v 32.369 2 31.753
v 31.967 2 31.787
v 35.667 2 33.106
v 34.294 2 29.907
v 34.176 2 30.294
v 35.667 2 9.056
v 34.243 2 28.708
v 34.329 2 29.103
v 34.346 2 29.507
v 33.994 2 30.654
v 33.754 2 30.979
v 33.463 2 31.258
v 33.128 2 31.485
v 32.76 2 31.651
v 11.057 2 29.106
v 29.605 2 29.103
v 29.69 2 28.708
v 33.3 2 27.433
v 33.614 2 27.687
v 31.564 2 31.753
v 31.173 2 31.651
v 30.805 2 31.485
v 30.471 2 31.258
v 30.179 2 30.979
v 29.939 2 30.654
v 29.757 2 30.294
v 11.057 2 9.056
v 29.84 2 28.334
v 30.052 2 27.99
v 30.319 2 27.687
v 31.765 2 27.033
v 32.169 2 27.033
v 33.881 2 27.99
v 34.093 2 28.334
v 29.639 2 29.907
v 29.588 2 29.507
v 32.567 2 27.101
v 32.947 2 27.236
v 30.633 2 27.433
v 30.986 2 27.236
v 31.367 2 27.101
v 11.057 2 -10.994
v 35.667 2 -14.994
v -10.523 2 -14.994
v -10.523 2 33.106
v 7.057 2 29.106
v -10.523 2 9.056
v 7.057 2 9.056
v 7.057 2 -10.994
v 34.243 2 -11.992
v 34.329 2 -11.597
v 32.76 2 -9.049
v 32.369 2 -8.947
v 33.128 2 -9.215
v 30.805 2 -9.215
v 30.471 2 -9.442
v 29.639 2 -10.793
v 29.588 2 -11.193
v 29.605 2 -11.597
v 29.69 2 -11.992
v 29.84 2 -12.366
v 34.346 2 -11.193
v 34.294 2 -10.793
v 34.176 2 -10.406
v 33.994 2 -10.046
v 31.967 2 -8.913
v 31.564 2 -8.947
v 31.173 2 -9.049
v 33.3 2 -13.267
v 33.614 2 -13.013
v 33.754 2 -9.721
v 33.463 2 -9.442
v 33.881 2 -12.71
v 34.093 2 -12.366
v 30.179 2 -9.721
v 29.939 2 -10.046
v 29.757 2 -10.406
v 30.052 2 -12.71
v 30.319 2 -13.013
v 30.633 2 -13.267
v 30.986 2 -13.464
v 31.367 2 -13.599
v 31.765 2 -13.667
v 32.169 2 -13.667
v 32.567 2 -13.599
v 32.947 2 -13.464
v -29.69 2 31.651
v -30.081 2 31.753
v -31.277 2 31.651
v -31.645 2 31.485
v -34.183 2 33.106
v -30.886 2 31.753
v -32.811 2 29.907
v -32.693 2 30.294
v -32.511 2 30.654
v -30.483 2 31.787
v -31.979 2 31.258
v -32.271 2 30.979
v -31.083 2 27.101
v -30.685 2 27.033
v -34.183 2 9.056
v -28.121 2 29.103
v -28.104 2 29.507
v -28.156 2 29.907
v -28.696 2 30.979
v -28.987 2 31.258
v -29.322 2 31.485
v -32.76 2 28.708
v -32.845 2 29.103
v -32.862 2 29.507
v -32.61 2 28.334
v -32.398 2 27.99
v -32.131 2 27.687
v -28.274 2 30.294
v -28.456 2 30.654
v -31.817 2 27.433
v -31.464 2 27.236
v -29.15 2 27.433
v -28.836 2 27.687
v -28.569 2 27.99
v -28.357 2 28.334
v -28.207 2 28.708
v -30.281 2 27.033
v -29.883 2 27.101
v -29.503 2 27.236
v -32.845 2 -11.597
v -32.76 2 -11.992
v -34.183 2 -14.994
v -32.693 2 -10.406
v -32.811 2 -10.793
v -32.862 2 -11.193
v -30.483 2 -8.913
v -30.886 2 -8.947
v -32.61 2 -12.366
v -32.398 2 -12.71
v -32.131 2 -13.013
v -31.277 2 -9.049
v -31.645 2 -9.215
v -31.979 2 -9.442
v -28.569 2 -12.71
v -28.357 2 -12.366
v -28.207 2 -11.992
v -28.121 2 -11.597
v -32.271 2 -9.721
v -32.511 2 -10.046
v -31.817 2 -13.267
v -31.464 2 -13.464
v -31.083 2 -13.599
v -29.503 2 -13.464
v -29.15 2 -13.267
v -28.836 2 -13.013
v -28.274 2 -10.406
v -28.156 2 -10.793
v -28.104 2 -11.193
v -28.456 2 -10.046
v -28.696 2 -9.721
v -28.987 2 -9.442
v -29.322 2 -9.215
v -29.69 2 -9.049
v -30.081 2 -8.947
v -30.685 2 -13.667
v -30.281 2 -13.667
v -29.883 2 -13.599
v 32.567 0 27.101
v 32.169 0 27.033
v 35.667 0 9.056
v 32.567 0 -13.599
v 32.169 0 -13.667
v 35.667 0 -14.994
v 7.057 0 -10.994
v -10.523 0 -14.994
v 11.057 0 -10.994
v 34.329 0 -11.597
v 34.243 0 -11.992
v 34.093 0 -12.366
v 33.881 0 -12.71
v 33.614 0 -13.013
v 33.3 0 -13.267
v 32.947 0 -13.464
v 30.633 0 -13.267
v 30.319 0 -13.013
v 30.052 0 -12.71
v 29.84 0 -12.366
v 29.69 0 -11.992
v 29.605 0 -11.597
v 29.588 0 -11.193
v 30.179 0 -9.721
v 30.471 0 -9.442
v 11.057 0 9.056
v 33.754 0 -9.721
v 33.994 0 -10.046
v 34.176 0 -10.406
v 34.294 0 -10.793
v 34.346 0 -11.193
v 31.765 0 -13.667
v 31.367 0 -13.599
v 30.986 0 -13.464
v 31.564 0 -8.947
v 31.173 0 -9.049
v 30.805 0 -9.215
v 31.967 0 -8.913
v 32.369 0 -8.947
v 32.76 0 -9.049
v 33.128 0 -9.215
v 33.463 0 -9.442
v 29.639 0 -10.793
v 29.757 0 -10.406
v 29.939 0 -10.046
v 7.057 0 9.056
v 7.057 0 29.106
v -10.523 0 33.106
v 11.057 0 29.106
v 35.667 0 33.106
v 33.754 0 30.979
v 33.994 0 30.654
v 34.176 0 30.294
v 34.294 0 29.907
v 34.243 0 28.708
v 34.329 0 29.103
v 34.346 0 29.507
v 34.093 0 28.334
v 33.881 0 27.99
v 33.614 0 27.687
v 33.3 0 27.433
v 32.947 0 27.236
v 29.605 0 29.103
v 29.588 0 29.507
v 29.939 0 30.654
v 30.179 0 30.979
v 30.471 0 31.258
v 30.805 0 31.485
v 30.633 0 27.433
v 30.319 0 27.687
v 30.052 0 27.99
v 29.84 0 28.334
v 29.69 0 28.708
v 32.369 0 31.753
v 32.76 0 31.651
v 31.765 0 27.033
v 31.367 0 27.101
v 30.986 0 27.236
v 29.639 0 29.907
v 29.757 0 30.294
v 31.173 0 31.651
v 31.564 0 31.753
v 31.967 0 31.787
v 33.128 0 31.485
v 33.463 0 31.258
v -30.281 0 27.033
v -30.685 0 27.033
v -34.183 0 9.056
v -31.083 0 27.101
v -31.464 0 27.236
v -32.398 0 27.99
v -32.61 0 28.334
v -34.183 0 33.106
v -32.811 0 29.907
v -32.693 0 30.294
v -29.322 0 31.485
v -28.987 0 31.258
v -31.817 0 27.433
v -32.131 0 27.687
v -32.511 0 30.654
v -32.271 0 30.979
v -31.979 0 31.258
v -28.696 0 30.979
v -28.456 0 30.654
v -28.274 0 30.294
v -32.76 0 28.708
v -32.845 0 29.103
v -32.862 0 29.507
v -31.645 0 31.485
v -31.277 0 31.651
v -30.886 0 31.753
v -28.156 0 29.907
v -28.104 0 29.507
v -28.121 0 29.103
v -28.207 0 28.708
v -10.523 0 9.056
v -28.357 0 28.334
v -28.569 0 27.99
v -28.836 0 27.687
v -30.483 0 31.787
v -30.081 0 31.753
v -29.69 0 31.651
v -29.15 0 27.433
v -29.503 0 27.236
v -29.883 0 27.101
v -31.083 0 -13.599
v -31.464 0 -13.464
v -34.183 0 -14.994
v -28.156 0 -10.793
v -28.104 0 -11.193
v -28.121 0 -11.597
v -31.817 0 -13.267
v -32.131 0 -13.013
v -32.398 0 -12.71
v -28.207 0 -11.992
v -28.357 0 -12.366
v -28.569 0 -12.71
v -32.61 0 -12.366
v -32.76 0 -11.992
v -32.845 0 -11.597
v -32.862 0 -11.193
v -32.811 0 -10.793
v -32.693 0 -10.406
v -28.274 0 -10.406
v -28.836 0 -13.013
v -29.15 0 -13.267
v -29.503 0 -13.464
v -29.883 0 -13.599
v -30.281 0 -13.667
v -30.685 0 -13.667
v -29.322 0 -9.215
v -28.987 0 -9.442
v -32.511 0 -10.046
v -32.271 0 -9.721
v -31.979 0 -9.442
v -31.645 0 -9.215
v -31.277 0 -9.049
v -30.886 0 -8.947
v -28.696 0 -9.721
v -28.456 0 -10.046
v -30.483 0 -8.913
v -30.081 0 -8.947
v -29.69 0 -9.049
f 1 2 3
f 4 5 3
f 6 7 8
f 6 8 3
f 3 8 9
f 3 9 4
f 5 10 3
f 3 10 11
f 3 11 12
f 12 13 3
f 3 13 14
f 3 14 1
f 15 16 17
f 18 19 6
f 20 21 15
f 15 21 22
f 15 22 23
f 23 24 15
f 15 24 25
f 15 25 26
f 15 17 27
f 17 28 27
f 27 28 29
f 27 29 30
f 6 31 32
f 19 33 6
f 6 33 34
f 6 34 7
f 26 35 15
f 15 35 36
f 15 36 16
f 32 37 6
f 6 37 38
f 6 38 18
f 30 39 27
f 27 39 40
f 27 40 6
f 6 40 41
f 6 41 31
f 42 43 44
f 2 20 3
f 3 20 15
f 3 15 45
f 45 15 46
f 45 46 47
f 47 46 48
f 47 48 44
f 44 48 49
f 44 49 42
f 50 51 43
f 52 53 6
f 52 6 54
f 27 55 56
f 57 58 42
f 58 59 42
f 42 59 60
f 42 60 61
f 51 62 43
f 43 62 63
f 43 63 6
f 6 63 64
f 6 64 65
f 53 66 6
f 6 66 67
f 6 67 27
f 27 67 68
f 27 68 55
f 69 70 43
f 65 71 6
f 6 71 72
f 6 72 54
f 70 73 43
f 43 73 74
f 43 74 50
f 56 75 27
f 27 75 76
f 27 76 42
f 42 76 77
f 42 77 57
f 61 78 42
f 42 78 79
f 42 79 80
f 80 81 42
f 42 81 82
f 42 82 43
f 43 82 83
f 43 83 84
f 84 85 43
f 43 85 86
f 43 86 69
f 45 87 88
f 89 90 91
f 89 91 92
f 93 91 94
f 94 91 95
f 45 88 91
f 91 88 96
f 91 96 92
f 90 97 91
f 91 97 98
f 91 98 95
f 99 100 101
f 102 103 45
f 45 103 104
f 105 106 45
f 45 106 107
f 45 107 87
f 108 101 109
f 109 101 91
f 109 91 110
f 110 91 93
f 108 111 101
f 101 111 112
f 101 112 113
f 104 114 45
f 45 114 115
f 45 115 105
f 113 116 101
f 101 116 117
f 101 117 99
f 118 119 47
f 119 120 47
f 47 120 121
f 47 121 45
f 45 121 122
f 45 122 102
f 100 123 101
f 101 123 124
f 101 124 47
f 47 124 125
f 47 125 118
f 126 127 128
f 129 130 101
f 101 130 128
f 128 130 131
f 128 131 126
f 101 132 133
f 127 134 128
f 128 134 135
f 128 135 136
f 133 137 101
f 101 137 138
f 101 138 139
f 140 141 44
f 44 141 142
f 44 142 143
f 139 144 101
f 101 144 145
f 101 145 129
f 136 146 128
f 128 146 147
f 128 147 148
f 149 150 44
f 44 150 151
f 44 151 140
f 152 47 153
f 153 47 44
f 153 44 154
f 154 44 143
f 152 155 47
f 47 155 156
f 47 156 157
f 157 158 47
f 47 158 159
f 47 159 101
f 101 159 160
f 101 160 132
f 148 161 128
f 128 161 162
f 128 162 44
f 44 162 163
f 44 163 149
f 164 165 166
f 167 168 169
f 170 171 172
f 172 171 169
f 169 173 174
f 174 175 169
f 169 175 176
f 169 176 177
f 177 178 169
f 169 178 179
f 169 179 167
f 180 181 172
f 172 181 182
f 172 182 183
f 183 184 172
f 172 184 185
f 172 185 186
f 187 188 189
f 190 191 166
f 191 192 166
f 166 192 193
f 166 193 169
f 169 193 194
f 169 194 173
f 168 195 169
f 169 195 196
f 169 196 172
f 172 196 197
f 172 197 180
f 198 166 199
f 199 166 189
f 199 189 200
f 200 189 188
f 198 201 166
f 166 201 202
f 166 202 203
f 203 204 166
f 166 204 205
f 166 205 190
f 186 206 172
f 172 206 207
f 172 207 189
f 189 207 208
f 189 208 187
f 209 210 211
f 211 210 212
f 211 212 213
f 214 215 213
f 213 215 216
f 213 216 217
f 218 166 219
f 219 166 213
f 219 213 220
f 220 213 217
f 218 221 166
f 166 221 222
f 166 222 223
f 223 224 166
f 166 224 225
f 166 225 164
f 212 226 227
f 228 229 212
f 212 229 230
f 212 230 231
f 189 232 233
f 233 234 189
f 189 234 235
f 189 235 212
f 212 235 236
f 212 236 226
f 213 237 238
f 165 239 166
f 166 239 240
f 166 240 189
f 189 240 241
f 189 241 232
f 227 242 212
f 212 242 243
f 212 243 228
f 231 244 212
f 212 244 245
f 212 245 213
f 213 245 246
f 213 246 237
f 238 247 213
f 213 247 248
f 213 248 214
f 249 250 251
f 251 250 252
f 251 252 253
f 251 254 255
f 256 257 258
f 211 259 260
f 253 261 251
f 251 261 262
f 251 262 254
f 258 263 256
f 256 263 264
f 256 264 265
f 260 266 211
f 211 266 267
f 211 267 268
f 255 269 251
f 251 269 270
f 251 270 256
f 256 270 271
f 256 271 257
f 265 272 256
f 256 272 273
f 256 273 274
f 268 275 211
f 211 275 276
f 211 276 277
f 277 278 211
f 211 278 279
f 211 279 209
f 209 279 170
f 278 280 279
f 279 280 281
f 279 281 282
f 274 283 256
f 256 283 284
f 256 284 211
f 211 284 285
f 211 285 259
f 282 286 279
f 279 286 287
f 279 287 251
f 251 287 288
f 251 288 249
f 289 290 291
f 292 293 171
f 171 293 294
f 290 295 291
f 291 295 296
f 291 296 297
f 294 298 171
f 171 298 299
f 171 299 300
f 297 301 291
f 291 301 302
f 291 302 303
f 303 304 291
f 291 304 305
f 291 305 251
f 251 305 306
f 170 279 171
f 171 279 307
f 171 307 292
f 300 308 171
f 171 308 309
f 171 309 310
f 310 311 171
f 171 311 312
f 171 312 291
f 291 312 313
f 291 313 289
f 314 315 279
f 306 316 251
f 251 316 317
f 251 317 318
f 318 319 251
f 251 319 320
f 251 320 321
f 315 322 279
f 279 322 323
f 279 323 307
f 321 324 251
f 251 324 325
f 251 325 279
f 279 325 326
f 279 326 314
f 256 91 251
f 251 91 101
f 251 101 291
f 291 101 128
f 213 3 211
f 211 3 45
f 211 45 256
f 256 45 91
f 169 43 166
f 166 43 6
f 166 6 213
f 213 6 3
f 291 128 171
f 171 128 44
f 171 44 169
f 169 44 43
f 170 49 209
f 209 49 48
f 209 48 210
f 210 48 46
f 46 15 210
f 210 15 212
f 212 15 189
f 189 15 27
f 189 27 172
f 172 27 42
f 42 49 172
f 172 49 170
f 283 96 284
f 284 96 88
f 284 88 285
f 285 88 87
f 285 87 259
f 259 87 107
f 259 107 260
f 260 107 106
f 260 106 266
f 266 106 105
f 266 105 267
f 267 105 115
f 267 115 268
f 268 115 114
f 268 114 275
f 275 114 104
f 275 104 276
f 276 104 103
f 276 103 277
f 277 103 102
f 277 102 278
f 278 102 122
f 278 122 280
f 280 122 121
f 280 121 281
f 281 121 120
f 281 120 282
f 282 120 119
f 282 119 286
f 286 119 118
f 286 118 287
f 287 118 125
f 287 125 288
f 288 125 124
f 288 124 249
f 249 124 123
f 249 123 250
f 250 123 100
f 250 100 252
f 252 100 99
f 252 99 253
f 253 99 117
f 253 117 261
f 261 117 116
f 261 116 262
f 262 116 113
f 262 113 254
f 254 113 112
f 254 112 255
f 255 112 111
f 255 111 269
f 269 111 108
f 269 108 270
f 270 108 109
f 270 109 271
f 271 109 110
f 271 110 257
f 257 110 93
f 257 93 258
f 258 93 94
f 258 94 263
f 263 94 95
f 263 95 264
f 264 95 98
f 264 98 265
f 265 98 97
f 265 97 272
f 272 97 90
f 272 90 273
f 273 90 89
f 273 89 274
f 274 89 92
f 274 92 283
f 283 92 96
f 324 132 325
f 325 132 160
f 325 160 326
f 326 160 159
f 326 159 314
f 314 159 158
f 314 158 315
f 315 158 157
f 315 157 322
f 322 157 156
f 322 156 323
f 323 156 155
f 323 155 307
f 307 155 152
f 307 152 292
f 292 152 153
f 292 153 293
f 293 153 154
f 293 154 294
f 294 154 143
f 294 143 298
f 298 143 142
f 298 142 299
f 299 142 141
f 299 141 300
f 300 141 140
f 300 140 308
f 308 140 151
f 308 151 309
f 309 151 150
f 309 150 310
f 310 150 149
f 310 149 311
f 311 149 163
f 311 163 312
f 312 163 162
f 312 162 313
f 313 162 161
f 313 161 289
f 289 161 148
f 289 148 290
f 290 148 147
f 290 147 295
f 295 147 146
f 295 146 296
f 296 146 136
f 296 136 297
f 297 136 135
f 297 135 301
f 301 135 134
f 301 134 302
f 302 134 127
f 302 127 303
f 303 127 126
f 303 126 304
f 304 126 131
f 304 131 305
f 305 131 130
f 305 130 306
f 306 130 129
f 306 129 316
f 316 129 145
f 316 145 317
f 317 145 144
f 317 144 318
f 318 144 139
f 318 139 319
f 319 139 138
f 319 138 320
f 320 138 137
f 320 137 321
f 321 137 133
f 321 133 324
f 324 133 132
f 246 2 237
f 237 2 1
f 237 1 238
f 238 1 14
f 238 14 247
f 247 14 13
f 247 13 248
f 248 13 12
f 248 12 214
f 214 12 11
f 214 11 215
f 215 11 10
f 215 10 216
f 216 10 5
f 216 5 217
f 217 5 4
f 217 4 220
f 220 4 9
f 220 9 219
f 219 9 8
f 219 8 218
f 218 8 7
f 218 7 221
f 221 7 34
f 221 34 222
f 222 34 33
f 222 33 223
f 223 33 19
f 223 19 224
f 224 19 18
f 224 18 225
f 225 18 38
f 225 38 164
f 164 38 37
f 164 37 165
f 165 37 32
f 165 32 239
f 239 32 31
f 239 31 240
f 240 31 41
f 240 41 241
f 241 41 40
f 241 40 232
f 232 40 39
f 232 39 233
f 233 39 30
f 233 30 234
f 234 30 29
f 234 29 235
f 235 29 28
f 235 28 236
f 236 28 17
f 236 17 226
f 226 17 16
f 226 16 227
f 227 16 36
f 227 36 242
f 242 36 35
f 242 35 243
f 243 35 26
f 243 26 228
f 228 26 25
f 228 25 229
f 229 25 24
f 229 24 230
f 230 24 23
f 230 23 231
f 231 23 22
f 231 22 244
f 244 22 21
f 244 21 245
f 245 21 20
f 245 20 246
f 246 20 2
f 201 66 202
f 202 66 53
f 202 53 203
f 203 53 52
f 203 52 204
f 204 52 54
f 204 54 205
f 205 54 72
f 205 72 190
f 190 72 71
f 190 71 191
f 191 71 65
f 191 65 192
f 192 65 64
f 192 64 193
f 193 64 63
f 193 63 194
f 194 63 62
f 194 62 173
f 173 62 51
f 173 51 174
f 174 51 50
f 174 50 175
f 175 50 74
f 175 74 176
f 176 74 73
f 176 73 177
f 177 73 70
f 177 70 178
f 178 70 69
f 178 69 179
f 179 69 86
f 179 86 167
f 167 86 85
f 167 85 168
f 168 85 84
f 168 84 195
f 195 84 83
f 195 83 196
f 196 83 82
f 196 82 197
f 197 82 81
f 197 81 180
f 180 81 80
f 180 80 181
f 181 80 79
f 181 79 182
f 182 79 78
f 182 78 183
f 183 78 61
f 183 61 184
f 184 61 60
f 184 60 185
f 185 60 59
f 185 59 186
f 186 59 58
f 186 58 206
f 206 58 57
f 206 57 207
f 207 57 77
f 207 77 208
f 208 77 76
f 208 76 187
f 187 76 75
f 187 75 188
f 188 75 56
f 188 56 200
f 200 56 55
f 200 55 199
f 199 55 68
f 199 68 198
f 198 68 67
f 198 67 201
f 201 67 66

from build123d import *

# Parameters (mm, degrees)
SKETCH1_W           = 69.85
SKETCH1_H           = 48.1
SKETCH1_W_2         = 4
SKETCH1_H_2         = 40.1
BOSS_EXTRUDE1_DEPTH = 2
SKETCH2_R           = 2.38125
CUT_EXTRUDE1_DEPTH  = 2
SKETCH3_R           = 2.38125
CUT_EXTRUDE2_DEPTH  = 2
SKETCH4_R           = 2.38125
CUT_EXTRUDE3_DEPTH  = 2
SKETCH5_R           = 2.38125
CUT_EXTRUDE4_DEPTH  = 2


with BuildPart() as part:
    # Sketch1 → Boss-Extrude1 (new body)
    with BuildSketch(Plane(origin=(0, 0, 0), x_dir=(1, 0, 0), z_dir=(0, 1, 0))):
        with Locations((0.741612582, -9.055777885)):
            Rectangle(SKETCH1_W, SKETCH1_H)
        with Locations((9.056612582, -9.055777885)):
            Rectangle(SKETCH1_W_2, SKETCH1_H_2, mode=Mode.SUBTRACT)
    extrude(amount=BOSS_EXTRUDE1_DEPTH)

    # Sketch2 → Cut-Extrude1 (cut)
    with BuildSketch(Plane(origin=(0, 2, 0), x_dir=(1, 0, 0), z_dir=(0, 1, 0))):
        with Locations(Location((-30.483387418, -29.405777885, 0), (0, 0, 270))):
            Circle(SKETCH2_R)
    extrude(amount=-CUT_EXTRUDE1_DEPTH, mode=Mode.SUBTRACT)

    # Sketch3 → Cut-Extrude2 (cut)
    with BuildSketch(Plane(origin=(0, 2, 0), x_dir=(1, 0, 0), z_dir=(0, 1, 0))):
        with Locations(Location((-30.483387418, 11.294222115, 0), (0, 0, 270))):
            Circle(SKETCH3_R)
    extrude(amount=-CUT_EXTRUDE2_DEPTH, mode=Mode.SUBTRACT)

    # Sketch4 → Cut-Extrude3 (cut)
    with BuildSketch(Plane(origin=(0, 2, 0), x_dir=(1, 0, 0), z_dir=(0, 1, 0))):
        with Locations(Location((31.966612582, -29.405777885, 0), (0, 0, 270))):
            Circle(SKETCH4_R)
    extrude(amount=-CUT_EXTRUDE3_DEPTH, mode=Mode.SUBTRACT)

    # Sketch5 → Cut-Extrude4 (cut)
    with BuildSketch(Plane(origin=(0, 2, 0), x_dir=(1, 0, 0), z_dir=(0, 1, 0))):
        with Locations(Location((31.966612582, 11.294222115, 0), (0, 0, 270))):
            Circle(SKETCH5_R)
    extrude(amount=-CUT_EXTRUDE4_DEPTH, mode=Mode.SUBTRACT)


solid = part.part
